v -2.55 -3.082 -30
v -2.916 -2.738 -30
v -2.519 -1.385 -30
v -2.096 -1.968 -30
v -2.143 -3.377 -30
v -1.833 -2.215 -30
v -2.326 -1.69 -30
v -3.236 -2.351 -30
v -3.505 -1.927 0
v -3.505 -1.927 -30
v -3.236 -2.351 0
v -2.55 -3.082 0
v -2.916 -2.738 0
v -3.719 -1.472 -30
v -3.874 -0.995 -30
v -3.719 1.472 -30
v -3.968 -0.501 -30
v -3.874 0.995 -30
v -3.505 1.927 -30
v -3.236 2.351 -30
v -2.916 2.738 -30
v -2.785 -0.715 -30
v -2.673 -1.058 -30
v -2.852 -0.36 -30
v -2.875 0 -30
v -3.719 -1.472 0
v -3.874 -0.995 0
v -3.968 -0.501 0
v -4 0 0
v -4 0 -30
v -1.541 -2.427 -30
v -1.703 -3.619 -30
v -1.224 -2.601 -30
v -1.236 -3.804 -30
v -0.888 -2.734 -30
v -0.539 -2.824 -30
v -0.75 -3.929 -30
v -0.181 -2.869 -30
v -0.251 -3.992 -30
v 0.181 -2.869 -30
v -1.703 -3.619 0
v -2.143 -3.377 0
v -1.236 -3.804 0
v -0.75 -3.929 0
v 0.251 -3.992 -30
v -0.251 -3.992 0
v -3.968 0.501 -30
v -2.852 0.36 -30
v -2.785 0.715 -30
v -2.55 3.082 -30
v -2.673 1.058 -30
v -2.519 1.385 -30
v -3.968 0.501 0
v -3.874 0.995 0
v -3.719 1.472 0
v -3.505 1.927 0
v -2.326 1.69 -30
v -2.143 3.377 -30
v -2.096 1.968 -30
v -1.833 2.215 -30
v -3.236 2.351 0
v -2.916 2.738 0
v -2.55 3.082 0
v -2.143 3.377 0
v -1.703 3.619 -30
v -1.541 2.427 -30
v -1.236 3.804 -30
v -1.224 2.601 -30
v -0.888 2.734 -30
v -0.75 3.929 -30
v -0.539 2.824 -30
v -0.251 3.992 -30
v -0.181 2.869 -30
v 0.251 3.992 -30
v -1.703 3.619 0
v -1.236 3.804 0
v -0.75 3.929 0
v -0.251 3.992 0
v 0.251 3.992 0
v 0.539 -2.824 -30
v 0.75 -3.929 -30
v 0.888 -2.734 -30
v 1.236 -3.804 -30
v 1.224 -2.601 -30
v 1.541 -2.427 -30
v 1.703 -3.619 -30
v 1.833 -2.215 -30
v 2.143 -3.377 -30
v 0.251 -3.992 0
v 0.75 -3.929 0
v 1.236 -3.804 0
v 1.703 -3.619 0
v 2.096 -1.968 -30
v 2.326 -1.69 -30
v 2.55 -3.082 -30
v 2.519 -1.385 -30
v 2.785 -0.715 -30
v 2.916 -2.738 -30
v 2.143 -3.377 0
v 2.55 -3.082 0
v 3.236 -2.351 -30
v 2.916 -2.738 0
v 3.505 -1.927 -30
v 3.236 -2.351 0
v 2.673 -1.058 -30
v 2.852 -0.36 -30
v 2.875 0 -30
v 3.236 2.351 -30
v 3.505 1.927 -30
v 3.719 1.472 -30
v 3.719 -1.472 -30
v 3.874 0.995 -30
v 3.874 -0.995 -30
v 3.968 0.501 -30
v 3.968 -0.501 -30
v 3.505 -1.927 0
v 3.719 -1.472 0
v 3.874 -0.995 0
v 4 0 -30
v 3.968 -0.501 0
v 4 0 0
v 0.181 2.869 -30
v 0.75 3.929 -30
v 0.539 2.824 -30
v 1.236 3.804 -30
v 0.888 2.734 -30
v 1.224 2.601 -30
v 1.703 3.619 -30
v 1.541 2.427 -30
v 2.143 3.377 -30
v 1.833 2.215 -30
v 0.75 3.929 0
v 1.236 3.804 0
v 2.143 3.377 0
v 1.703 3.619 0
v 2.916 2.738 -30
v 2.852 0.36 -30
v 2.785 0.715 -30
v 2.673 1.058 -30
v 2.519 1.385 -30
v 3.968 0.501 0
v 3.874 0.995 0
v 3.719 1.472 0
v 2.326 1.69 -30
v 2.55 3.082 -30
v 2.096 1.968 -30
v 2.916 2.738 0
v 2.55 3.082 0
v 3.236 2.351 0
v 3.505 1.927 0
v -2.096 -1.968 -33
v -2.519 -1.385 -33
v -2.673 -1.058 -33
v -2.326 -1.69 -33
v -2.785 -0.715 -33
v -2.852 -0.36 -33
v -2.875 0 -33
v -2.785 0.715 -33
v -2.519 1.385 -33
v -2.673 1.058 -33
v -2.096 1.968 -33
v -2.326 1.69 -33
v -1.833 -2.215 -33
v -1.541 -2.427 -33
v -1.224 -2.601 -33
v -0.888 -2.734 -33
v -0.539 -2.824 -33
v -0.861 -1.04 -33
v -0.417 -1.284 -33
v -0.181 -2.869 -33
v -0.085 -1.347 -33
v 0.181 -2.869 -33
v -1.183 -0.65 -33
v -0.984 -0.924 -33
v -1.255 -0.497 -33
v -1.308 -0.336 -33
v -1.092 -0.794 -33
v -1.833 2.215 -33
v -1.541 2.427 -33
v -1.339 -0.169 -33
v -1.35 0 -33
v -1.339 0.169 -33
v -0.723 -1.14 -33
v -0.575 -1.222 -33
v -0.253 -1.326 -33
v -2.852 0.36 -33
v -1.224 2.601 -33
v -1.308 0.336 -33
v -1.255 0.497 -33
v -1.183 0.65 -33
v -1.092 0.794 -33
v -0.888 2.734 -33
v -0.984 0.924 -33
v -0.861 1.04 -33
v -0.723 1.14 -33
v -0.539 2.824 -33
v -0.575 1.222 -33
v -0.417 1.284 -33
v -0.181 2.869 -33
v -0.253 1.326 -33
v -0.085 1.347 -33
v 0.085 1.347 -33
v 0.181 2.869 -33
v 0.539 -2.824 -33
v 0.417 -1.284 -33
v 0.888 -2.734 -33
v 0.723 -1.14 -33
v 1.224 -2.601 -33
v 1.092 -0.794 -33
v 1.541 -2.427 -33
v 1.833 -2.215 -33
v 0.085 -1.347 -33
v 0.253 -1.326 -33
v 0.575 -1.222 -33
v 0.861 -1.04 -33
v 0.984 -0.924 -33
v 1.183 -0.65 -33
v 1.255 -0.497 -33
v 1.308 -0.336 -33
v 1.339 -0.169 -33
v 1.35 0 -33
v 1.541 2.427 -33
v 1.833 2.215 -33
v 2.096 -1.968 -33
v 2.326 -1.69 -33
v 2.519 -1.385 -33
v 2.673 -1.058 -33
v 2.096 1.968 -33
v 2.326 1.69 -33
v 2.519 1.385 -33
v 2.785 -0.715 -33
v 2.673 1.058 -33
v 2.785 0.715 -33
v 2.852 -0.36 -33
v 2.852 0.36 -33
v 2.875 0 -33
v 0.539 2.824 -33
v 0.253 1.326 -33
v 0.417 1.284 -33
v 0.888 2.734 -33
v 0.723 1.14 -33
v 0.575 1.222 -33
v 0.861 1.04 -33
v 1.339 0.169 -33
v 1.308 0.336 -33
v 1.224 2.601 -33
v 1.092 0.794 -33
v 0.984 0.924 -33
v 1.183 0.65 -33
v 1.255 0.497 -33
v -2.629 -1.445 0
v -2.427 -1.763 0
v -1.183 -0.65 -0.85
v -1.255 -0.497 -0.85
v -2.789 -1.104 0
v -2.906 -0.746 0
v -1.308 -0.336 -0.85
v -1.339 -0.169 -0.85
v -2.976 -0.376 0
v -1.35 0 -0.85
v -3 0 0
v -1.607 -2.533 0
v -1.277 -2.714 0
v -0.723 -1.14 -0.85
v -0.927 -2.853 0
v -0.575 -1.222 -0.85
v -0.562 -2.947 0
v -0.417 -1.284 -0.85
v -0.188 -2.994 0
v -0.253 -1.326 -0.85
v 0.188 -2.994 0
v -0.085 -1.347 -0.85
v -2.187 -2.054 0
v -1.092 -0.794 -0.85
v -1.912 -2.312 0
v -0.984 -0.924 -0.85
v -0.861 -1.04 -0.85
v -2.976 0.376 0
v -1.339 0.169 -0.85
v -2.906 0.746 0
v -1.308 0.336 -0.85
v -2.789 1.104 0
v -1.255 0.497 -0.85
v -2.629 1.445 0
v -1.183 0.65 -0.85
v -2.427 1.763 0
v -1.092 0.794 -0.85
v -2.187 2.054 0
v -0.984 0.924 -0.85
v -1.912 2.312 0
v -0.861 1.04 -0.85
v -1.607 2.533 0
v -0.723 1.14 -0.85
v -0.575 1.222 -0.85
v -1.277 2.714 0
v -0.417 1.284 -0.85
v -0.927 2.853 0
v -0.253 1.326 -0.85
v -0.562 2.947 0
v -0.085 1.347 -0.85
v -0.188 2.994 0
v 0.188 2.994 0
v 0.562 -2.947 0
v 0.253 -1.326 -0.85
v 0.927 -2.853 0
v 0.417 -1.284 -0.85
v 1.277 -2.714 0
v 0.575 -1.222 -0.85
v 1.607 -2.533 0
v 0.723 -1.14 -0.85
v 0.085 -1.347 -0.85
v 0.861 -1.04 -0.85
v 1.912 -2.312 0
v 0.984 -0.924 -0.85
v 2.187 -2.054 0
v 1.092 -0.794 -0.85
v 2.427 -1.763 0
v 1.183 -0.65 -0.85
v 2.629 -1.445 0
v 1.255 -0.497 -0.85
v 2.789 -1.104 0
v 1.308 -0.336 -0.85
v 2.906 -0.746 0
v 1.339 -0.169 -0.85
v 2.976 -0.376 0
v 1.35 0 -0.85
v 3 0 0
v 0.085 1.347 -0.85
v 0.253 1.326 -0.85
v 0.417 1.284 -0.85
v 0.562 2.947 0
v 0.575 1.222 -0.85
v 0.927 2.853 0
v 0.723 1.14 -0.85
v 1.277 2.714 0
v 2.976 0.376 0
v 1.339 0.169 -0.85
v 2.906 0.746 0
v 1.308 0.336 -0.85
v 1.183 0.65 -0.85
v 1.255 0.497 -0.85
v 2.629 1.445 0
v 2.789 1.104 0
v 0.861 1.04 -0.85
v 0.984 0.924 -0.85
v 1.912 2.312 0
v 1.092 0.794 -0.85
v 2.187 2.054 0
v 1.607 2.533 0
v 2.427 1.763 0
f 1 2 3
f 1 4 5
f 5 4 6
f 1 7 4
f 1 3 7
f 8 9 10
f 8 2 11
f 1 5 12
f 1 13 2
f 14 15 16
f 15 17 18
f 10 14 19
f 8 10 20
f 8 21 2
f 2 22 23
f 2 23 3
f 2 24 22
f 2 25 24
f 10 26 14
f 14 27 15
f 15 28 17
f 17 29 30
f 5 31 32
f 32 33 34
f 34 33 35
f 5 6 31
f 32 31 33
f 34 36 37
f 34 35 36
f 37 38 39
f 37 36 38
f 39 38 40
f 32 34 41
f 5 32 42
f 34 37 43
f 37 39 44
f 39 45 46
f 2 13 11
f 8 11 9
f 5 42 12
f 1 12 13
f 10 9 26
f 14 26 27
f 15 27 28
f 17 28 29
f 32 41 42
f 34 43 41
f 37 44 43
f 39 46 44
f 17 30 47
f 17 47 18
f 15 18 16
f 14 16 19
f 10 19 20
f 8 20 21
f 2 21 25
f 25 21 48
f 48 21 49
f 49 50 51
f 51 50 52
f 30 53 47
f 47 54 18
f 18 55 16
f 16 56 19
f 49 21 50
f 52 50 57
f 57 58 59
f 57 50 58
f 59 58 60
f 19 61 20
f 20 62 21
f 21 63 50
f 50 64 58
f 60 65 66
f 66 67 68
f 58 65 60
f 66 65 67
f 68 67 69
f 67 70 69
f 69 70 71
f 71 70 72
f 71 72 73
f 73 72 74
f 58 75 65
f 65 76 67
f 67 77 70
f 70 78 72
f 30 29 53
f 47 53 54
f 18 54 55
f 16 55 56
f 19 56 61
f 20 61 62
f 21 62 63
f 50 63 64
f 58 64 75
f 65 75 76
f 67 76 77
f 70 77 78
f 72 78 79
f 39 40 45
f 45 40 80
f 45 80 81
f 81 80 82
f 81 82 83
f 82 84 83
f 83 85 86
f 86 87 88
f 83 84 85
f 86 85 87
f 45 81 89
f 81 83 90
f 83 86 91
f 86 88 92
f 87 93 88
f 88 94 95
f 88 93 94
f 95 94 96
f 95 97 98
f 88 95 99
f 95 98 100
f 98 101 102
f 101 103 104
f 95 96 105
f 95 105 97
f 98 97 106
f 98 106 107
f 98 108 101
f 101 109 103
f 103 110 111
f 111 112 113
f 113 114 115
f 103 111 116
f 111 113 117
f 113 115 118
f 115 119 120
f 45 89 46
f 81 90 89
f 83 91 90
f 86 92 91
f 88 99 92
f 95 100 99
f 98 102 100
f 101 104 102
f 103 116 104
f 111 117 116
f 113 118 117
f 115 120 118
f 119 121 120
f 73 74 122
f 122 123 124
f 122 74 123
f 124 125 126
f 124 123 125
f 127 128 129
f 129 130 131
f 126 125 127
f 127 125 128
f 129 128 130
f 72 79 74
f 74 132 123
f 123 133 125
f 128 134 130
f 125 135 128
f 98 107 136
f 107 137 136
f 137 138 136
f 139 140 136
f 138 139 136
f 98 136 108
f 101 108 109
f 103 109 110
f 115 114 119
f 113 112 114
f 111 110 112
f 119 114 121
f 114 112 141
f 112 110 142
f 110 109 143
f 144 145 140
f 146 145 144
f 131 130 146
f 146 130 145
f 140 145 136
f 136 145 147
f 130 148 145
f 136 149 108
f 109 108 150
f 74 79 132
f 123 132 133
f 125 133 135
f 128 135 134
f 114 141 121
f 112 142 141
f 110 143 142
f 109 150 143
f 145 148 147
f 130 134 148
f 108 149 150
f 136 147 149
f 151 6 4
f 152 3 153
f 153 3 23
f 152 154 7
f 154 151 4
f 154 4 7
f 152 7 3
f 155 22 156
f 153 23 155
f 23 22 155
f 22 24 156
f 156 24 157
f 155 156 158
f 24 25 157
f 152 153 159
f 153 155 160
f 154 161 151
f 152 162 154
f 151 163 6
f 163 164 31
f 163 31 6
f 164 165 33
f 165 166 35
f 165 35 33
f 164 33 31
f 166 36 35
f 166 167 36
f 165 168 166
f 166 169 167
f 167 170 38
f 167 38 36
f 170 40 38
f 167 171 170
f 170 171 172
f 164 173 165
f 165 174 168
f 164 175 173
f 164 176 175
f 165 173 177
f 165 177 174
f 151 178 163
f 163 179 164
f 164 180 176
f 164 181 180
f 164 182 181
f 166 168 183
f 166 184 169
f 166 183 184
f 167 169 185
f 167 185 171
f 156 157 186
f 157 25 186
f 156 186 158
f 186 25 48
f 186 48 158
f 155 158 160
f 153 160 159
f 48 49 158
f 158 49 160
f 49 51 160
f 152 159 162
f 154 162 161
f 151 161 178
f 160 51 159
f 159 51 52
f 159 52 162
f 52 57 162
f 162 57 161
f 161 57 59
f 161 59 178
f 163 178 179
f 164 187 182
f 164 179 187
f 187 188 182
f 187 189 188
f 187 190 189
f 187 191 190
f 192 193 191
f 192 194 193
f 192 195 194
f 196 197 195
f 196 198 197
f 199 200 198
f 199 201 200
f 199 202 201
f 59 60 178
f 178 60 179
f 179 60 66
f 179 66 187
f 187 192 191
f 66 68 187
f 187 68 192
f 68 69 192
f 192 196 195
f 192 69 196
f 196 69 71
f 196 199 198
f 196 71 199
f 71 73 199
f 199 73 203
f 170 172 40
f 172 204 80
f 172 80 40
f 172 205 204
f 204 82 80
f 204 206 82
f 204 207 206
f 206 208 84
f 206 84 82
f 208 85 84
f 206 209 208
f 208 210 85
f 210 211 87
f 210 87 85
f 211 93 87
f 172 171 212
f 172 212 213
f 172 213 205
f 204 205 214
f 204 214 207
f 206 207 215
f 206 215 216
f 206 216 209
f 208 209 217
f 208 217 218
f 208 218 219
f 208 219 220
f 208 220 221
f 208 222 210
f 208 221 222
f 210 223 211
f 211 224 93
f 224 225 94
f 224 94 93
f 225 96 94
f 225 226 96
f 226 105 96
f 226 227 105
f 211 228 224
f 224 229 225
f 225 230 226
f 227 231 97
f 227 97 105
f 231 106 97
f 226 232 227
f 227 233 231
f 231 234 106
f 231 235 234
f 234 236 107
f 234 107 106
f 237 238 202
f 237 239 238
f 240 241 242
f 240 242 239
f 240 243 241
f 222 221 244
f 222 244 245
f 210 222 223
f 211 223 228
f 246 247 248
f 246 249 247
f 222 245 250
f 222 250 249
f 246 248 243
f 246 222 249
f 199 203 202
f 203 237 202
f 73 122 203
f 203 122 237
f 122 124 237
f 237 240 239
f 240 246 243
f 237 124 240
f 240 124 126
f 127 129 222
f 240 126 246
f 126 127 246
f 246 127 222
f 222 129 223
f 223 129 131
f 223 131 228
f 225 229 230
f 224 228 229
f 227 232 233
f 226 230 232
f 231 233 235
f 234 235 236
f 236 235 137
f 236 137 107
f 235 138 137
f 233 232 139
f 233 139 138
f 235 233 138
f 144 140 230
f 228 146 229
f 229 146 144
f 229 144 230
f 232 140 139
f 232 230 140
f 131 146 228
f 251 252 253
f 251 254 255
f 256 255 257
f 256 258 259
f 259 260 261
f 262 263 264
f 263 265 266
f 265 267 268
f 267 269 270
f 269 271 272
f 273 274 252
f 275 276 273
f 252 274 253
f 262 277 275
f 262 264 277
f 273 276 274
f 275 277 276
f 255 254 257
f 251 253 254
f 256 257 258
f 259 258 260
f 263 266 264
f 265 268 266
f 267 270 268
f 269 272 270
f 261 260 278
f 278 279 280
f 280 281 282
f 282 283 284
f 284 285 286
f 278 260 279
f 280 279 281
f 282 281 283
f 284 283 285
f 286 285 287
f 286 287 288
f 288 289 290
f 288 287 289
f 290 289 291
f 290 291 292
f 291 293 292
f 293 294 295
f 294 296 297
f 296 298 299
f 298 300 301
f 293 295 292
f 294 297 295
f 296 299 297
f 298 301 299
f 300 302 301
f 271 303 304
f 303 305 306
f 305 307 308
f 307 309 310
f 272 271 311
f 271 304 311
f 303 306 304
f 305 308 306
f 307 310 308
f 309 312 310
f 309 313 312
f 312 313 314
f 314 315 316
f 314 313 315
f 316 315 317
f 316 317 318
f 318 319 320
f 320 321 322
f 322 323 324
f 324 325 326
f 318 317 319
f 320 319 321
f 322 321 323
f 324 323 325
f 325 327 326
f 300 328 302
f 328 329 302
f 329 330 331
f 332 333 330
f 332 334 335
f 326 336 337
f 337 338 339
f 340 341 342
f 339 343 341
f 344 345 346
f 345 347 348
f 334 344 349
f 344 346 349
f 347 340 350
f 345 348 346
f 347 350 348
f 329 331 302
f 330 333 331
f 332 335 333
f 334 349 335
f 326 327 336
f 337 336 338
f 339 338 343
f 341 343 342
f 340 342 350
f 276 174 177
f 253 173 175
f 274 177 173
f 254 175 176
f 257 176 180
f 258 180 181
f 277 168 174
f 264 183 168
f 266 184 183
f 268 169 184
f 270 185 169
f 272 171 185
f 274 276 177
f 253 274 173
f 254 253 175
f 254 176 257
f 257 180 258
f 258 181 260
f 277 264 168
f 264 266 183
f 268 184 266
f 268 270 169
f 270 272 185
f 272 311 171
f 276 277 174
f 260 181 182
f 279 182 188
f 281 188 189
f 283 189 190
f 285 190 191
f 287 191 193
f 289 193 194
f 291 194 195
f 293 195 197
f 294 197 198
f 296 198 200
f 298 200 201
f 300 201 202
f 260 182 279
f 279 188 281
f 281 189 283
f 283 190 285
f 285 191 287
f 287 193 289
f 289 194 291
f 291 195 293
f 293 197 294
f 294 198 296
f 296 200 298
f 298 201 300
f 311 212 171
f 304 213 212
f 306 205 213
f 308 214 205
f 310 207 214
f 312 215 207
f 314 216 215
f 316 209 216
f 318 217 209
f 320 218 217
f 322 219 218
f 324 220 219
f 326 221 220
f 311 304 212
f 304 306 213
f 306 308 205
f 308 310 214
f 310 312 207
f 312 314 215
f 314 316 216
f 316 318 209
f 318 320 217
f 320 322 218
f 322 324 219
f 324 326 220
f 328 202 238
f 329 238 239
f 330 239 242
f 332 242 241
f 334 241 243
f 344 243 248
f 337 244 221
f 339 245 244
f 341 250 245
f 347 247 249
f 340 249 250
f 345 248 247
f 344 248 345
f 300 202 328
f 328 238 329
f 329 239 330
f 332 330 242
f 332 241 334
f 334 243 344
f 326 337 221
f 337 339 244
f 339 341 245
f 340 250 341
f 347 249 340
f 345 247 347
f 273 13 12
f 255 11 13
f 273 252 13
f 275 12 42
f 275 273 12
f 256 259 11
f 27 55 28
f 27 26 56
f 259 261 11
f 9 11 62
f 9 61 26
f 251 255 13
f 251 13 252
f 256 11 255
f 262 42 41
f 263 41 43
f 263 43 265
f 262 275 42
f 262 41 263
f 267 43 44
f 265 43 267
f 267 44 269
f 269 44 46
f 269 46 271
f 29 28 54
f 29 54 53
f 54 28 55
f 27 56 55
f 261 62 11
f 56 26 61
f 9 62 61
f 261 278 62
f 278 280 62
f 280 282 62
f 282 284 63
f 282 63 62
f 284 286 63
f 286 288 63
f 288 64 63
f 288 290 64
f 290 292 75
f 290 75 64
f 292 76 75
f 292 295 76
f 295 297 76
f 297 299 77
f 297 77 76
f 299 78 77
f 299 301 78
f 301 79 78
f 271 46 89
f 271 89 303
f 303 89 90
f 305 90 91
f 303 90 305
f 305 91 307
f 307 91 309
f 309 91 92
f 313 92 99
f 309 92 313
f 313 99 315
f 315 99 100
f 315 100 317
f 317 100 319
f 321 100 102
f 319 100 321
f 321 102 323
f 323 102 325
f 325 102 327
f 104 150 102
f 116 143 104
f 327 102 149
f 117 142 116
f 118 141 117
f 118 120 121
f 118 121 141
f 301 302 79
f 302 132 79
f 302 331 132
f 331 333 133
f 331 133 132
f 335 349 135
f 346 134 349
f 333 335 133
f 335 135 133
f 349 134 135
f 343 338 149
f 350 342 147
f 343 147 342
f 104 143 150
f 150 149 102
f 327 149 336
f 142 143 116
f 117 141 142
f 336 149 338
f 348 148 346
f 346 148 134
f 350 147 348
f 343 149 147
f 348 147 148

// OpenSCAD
$fn = 50;

difference() {
	union() {
		translate(v = [0, 0, -30.0]) {
			cylinder(h = 33, r = 4.0);
		}
		#translate(v = [0, 0, -33.0]) {
			cylinder(h = 33, r = 2.875);
		}
	}
	union() {
		translate(v = [0, 0, 0]) {
			rotate(a = [0, 0, 0]) {
				difference() {
					union() {
						translate(v = [0, 0, -33.0]) {
							cylinder(h = 33, r = 1.0);
						}
						translate(v = [0, 0, -0.85]) {
							cylinder(h = 0.85, r1 = 1.35, r2 = 3.0);
						}
						translate(v = [0, 0, -33.0]) {
							cylinder(h = 33, r = 1.35);
						}
						translate(v = [0, 0, -33.0]) {
							cylinder(h = 33, r = 1.0);
						}
					}
					union();
				}
			}
		}
		#cylinder(h = 3, r = 5.0);
	}
}
